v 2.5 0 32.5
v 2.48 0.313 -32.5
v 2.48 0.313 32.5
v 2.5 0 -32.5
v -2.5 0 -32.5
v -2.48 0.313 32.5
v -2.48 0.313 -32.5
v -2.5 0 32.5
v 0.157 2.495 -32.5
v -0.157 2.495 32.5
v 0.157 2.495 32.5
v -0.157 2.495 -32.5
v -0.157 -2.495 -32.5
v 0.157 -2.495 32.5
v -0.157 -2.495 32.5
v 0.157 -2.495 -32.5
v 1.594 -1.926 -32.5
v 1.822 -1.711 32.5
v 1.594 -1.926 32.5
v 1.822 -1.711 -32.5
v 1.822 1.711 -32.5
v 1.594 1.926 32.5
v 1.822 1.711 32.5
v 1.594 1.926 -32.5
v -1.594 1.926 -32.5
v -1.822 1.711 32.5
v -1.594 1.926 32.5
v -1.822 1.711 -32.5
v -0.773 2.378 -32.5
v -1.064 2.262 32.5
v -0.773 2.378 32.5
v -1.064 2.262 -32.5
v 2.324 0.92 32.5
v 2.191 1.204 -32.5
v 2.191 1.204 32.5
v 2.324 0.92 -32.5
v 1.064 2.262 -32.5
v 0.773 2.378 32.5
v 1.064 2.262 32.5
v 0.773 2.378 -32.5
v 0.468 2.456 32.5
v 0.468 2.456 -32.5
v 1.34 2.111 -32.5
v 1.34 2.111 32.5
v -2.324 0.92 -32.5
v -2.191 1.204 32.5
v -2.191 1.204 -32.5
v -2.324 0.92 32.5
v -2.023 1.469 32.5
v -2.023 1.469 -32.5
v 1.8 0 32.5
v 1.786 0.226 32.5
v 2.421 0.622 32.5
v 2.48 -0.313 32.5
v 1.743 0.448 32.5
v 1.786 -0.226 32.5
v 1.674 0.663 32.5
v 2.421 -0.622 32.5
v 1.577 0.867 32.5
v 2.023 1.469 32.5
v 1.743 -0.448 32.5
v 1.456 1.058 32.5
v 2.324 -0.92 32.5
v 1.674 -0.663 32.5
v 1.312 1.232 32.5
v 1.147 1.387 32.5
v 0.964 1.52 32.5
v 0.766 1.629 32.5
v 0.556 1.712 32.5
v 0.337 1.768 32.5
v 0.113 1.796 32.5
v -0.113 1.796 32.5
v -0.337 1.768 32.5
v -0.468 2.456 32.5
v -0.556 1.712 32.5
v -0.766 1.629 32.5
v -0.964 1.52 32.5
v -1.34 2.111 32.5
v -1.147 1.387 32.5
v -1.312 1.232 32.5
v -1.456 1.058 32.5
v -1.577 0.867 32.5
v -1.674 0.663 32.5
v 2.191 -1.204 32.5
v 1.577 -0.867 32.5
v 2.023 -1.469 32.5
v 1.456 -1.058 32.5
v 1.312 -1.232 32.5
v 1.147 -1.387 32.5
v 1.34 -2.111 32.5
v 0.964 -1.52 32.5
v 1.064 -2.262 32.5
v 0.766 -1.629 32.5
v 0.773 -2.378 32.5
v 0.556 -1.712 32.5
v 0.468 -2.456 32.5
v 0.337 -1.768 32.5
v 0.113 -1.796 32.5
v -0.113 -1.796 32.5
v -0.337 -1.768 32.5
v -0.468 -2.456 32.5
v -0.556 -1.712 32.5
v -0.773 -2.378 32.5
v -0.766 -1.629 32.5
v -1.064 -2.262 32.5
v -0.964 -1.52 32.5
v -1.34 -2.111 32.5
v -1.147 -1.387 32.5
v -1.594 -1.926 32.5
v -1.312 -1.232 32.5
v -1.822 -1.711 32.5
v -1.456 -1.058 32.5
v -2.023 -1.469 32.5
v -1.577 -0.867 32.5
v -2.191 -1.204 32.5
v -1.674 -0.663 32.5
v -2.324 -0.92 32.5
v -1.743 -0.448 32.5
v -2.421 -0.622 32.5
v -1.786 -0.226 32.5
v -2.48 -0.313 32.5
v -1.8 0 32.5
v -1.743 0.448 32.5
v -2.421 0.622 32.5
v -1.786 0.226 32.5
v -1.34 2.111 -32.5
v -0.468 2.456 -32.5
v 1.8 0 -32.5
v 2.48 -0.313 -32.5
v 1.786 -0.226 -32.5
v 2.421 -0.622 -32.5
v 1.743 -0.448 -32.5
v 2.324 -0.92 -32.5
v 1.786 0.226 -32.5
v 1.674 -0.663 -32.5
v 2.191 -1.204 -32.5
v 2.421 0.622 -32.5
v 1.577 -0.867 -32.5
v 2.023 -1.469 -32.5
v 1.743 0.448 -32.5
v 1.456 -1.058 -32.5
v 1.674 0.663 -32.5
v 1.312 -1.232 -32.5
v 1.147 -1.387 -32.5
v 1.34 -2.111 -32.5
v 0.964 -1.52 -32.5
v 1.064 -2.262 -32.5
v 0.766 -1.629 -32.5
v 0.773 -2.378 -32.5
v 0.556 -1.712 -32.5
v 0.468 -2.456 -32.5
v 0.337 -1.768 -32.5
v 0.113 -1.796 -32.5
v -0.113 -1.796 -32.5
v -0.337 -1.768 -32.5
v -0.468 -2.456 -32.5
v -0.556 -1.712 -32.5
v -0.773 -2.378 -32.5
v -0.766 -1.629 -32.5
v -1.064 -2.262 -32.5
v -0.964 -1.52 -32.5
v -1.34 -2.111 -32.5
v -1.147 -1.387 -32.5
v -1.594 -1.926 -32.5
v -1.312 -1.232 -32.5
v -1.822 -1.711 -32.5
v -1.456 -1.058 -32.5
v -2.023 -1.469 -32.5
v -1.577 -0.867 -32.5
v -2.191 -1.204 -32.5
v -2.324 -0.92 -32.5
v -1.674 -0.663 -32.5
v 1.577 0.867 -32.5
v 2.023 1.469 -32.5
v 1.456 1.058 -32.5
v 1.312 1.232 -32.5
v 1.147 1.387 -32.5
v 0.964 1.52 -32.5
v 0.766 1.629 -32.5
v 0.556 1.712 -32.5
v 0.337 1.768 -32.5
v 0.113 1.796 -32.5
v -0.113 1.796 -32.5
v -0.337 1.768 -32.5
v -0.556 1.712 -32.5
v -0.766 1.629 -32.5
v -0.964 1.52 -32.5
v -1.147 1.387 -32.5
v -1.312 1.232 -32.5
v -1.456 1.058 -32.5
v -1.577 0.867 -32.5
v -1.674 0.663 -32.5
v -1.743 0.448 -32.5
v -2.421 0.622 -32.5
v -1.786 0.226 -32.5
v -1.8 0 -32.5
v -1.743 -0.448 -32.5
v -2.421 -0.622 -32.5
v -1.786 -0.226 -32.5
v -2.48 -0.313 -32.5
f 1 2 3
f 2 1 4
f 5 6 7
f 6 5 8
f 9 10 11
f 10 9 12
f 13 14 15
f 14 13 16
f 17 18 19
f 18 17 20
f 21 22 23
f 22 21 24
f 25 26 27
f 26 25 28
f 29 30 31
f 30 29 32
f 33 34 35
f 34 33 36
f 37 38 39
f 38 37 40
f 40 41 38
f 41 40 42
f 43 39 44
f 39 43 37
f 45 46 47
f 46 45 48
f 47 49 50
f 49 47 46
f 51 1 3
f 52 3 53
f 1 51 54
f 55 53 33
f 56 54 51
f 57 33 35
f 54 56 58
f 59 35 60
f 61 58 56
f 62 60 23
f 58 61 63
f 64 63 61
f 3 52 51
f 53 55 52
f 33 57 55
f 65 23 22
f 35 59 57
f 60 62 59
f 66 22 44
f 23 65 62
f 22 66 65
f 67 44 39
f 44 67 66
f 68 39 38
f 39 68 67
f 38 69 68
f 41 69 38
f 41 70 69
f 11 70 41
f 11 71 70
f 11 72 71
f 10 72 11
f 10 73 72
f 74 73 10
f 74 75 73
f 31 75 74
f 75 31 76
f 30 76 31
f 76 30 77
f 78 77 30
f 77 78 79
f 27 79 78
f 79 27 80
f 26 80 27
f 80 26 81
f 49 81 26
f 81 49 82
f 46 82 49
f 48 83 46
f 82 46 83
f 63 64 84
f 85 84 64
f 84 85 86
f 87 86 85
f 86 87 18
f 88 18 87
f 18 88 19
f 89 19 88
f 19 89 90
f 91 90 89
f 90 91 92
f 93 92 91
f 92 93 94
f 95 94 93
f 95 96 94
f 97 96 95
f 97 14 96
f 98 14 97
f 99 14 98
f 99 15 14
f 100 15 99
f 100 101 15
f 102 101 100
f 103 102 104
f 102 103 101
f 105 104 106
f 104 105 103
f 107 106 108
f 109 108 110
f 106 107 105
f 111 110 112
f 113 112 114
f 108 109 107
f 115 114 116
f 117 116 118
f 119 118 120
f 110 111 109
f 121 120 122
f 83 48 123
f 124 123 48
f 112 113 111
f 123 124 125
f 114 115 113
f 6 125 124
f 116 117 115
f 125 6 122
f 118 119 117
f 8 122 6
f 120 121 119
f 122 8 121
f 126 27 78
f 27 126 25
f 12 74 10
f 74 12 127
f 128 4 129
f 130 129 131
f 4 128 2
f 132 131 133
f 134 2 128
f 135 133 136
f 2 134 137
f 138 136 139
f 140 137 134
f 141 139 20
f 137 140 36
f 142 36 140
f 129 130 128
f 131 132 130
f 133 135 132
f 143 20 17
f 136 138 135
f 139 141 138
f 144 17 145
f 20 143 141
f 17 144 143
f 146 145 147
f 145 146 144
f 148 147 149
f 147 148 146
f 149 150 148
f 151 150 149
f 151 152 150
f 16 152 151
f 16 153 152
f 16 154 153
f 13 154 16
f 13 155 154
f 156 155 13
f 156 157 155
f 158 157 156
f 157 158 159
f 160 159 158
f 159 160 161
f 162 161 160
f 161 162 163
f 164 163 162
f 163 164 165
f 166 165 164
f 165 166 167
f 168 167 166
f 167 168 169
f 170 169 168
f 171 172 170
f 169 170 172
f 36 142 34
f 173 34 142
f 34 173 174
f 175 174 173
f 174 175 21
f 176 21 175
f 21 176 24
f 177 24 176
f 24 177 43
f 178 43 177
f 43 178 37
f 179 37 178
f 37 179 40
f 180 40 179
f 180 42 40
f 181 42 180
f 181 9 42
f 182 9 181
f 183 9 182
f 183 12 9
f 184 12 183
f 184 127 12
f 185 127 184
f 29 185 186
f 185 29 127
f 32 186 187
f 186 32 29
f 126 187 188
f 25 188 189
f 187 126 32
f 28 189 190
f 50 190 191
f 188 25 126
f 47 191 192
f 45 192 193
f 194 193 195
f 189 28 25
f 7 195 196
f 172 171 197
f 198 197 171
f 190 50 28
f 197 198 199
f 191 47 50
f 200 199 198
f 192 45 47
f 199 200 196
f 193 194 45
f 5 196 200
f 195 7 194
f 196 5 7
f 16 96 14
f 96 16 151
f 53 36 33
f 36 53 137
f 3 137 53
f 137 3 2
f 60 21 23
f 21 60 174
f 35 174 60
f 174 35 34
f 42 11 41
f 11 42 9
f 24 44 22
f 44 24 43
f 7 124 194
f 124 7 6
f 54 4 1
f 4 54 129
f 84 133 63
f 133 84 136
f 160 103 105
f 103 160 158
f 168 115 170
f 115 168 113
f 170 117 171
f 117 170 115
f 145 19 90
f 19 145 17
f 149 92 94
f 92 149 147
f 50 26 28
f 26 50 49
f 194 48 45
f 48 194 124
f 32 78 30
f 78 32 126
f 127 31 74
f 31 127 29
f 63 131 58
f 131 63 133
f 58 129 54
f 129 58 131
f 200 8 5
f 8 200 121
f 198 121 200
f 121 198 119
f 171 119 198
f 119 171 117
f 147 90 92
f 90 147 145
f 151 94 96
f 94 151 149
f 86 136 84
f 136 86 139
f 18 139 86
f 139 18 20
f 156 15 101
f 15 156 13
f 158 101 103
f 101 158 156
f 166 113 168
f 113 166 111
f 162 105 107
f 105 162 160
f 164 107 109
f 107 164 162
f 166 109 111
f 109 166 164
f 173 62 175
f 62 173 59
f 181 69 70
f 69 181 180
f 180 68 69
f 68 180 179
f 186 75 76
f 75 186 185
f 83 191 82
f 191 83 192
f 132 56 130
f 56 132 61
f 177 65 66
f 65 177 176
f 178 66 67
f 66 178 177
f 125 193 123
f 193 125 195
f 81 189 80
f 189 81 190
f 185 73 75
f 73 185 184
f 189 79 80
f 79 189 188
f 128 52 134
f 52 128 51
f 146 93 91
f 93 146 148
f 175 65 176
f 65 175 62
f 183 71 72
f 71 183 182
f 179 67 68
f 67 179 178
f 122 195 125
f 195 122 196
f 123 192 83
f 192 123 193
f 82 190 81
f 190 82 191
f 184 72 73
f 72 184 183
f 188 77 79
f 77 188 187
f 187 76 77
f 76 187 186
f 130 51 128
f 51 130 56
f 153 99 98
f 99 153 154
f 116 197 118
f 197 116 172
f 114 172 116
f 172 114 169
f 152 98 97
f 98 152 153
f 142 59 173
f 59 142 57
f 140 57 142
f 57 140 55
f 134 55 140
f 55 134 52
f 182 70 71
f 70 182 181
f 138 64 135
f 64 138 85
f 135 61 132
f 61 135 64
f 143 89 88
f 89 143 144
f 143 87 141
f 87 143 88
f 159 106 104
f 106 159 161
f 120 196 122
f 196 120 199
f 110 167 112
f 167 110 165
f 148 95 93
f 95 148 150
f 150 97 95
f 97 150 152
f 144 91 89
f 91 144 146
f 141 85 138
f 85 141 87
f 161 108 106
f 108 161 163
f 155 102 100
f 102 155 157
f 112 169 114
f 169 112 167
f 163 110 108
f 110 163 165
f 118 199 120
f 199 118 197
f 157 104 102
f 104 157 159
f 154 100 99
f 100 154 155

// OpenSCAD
$fn = 50;


difference() {
	union() {
		translate(v = [0, 0, -32.5000000000]) {
			cylinder(h = 65, r = 2.5000000000);
		}
	}
	union() {
		translate(v = [0, 0, -100.0000000000]) {
			cylinder(h = 200, r = 1.8000000000);
		}
	}
}
